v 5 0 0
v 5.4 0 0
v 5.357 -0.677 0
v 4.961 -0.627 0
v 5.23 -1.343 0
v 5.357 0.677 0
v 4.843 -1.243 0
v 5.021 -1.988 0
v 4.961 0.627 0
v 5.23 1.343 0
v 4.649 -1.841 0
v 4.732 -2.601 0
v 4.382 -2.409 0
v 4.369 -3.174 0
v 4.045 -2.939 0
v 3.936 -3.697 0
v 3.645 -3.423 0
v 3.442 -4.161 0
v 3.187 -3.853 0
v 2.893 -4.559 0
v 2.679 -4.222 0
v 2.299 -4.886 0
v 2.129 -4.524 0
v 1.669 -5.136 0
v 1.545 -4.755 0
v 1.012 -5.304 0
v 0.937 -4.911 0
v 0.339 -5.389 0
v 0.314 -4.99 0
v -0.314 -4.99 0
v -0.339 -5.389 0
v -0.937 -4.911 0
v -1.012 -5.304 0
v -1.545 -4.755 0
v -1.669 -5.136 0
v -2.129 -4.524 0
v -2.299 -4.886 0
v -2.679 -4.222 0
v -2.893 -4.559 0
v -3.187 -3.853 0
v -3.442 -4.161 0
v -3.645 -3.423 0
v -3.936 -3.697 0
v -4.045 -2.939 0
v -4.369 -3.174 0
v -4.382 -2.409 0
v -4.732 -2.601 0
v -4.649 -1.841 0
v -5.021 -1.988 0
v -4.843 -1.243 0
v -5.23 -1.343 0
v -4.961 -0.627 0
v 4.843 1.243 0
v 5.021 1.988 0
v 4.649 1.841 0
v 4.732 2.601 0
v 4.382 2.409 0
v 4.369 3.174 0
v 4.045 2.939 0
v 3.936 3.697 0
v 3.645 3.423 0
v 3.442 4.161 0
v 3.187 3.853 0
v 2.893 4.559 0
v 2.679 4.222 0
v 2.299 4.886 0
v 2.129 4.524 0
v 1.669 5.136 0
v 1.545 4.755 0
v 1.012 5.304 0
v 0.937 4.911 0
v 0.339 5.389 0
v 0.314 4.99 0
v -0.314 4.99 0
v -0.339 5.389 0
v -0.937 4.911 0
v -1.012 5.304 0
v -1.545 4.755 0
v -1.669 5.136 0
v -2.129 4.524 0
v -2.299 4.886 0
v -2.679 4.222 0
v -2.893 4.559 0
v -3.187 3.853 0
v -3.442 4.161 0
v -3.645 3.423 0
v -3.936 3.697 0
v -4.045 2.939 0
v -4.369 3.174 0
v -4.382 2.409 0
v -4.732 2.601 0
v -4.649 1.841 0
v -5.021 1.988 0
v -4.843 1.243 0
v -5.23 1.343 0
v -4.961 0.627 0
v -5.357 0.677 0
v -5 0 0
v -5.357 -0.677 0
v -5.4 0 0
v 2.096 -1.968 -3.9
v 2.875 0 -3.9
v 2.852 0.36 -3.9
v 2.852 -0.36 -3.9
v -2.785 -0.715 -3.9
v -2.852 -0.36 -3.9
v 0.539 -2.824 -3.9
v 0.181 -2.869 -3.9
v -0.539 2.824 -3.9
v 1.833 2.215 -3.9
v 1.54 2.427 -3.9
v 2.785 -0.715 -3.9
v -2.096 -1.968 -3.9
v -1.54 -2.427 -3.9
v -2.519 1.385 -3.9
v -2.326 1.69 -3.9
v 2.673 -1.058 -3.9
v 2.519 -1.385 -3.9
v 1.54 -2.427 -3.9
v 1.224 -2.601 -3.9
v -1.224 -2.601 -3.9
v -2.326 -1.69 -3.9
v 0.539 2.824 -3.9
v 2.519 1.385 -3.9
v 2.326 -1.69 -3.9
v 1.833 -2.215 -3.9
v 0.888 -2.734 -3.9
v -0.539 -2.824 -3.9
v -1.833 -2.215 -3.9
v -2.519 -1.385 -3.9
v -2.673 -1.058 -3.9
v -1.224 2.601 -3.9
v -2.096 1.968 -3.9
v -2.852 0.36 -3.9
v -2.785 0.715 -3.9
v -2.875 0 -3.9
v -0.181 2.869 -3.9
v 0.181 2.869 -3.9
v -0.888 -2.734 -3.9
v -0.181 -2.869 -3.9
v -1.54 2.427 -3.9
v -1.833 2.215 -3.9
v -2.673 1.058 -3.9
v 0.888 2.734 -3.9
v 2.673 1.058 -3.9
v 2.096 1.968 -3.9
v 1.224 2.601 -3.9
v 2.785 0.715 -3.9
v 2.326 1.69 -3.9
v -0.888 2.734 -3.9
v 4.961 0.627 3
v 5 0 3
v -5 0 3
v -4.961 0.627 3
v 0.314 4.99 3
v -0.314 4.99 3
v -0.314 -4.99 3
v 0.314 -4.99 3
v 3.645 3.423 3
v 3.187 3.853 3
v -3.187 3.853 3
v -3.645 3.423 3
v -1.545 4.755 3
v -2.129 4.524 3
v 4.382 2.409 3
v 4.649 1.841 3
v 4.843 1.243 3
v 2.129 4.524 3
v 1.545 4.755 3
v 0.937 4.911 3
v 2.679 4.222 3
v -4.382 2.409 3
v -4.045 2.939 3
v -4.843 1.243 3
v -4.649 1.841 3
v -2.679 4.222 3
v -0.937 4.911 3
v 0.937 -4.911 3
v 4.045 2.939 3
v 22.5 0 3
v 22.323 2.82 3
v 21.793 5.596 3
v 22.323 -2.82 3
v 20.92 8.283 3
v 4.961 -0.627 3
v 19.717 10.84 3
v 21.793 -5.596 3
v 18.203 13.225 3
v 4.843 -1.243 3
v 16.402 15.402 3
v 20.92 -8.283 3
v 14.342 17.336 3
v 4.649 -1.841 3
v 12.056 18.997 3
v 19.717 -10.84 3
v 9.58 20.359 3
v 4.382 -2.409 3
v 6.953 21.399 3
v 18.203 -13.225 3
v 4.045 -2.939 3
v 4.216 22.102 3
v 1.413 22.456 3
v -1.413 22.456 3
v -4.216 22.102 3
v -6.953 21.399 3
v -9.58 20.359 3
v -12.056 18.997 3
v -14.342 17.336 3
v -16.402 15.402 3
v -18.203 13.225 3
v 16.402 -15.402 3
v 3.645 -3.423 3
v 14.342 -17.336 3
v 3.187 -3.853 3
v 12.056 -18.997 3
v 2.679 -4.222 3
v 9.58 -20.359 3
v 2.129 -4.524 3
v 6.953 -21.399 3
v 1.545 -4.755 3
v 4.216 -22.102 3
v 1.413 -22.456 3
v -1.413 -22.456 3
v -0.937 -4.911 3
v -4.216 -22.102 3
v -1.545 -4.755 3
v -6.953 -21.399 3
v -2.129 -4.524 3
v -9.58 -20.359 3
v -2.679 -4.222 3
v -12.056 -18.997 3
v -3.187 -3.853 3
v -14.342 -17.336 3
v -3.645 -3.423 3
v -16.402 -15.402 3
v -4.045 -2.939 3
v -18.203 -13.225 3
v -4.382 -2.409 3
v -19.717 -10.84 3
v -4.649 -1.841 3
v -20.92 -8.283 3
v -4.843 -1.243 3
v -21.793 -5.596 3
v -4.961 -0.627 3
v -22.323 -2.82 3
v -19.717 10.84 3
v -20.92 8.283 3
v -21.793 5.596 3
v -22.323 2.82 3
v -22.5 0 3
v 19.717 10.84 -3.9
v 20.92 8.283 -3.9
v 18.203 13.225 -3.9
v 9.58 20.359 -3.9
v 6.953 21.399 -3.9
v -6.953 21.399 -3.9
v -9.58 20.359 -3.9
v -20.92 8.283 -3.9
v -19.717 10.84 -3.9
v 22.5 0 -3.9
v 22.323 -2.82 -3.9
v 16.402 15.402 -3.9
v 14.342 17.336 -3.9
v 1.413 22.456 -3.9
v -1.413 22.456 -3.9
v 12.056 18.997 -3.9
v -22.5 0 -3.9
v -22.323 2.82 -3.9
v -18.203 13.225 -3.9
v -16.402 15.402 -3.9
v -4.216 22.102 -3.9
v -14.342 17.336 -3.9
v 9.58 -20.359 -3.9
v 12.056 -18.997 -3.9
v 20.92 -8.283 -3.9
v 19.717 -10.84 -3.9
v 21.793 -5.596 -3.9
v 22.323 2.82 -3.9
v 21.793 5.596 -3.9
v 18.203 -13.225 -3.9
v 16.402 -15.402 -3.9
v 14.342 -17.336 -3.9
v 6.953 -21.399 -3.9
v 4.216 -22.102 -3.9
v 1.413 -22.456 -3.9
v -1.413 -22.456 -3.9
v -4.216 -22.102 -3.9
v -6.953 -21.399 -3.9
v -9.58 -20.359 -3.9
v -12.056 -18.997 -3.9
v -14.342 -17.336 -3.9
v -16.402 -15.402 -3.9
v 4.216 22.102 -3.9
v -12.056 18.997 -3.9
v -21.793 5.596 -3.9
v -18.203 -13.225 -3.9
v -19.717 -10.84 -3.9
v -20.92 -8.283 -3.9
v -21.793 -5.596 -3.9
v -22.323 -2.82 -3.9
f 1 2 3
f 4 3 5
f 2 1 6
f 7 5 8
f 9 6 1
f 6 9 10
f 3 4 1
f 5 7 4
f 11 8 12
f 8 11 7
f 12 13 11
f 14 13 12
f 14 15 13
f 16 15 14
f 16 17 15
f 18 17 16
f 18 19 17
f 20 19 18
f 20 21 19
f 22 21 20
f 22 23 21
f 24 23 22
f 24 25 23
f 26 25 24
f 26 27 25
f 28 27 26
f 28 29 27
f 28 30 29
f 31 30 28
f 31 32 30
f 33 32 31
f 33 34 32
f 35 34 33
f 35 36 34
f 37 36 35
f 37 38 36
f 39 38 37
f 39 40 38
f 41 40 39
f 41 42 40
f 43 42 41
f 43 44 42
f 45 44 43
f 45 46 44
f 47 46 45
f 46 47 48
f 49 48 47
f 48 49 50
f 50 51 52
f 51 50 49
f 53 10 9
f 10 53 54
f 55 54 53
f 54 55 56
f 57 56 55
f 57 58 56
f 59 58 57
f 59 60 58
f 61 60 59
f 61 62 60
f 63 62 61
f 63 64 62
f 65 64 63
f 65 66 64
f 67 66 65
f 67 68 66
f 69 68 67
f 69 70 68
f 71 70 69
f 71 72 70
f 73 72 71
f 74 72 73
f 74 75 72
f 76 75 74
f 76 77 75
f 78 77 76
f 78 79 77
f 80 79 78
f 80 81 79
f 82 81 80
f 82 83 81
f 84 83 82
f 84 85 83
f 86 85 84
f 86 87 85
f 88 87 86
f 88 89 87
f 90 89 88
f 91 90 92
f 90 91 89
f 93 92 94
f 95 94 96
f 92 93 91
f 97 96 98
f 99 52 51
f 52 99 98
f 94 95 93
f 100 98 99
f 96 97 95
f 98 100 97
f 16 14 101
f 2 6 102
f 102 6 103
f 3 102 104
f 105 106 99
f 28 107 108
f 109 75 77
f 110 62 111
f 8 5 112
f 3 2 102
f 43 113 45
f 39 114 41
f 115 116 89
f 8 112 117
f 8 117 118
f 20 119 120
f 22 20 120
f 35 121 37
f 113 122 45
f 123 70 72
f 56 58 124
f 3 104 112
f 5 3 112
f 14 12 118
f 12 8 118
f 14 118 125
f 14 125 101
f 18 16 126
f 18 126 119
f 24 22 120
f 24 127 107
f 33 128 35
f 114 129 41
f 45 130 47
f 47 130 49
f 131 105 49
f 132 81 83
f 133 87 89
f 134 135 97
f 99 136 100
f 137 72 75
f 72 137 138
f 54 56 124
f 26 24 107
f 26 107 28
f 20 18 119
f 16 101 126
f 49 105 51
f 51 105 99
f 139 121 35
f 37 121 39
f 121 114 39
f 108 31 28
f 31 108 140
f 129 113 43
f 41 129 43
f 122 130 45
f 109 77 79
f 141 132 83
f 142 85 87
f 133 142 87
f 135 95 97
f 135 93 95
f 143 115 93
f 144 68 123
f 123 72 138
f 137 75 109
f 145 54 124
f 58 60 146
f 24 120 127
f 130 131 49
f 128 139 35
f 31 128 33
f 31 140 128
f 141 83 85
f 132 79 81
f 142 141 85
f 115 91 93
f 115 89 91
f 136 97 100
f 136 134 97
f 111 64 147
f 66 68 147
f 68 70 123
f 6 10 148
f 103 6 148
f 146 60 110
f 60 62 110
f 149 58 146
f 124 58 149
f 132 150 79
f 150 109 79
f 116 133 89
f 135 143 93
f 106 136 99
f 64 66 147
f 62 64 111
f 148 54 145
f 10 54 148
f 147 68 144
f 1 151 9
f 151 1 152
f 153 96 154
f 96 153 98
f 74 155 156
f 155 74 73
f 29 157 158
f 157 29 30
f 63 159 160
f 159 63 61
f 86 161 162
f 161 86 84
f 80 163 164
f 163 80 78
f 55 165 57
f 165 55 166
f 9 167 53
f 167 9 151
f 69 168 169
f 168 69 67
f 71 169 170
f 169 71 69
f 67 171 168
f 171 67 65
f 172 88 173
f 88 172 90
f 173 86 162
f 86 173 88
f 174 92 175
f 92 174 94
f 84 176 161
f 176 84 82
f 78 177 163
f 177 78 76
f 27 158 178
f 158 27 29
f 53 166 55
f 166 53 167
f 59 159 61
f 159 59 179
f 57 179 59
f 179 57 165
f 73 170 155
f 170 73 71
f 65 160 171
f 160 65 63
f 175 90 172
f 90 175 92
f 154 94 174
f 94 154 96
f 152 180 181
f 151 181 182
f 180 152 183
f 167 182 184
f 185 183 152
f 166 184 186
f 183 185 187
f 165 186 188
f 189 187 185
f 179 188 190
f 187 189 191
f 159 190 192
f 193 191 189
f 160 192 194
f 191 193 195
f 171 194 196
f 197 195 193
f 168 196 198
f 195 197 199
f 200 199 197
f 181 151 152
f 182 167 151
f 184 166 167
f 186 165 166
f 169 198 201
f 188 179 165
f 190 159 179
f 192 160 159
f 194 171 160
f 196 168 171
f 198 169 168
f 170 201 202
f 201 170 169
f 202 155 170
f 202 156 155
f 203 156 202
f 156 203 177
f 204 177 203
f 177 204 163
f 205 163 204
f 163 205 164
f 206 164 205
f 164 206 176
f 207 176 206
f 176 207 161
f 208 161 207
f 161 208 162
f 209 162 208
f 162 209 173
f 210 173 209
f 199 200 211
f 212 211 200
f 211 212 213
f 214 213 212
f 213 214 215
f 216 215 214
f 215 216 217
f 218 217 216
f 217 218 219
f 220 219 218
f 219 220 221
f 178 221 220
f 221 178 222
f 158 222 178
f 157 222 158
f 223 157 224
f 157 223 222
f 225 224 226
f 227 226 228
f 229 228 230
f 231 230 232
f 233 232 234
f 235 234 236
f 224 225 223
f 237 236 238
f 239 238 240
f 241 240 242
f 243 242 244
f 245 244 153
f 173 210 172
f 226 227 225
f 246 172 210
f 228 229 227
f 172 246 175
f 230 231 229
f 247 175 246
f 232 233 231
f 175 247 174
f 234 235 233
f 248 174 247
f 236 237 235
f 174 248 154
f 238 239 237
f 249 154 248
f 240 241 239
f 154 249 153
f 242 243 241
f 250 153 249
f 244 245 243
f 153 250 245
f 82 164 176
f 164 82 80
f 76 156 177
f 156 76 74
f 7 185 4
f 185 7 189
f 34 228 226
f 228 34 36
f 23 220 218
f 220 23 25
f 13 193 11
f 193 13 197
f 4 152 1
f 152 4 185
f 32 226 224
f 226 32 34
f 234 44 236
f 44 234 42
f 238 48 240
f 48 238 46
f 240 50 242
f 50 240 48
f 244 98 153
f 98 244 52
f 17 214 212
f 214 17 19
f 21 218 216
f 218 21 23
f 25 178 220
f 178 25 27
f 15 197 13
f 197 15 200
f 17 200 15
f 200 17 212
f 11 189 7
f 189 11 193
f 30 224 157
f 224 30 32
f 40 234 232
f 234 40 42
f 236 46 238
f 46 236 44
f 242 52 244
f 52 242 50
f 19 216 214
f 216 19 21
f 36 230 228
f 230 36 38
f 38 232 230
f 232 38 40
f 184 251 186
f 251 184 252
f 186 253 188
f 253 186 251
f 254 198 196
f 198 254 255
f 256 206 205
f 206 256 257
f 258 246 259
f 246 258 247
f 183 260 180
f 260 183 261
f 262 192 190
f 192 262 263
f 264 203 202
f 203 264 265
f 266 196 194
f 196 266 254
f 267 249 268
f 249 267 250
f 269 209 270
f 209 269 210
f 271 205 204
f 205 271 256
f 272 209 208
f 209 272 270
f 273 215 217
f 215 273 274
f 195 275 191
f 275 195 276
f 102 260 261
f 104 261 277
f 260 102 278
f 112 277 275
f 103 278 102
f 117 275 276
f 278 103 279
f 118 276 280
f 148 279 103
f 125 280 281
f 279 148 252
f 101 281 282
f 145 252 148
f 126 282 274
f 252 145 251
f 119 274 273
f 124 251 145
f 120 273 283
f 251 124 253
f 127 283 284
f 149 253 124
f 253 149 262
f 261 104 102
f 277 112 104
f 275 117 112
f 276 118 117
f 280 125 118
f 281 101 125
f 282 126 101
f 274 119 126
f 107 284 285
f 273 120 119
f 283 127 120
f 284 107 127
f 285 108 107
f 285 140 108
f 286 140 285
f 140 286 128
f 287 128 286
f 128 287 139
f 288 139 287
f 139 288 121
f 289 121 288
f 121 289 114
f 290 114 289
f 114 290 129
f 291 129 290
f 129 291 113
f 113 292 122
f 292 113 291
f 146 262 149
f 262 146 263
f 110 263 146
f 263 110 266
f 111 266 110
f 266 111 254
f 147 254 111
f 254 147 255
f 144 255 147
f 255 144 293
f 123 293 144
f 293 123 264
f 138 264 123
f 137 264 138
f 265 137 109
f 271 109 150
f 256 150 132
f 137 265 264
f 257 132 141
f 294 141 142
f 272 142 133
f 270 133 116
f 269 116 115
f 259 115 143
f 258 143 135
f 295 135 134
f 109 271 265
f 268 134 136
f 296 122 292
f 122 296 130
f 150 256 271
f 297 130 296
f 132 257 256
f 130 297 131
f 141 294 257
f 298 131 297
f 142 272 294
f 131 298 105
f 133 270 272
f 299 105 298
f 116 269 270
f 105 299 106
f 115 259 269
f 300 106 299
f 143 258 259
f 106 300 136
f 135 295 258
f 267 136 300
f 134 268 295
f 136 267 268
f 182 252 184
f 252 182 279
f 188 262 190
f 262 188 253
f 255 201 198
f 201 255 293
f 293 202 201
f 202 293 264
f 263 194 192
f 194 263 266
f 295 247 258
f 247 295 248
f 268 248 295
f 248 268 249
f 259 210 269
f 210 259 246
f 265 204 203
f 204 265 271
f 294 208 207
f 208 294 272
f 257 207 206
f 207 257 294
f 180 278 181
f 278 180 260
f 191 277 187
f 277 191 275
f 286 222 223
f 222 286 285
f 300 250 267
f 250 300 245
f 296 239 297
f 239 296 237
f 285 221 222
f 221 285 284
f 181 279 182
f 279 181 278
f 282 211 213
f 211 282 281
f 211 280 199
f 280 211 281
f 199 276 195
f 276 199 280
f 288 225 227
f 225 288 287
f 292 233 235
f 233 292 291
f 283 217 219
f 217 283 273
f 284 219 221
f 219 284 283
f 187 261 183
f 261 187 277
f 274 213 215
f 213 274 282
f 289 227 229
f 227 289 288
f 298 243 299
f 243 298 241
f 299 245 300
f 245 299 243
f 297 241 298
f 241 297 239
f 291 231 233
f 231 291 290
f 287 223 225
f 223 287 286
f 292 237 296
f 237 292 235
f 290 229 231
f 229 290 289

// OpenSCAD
$fn = 50;

difference() {
	union() {
		translate(v = [0, 0, -3.9000000000000004]) {
			cylinder(h = 6.9, r = 22.5);
		}
	}
	union() {
		translate(v = [0, 0, 0]) {
			rotate(a = [0, 0, 0]) {
				difference() {
					union() {
						translate(v = [0, 0, -6.9]) {
							cylinder(h = 6.9, r = 2.6);
						}
						translate(v = [0, 0, -3.9]) {
							cylinder(h = 3.9, r1 = 2.875, r2 = 5.4);
						}
						translate(v = [0, 0, -6.9]) {
							cylinder(h = 6.9, r = 2.875);
						}
						translate(v = [0, 0, -6.9]) {
							cylinder(h = 6.9, r = 2.6);
						}
					}
					union();
				}
			}
		}
		#cylinder(h = 3, r = 5.0);
	}
}
